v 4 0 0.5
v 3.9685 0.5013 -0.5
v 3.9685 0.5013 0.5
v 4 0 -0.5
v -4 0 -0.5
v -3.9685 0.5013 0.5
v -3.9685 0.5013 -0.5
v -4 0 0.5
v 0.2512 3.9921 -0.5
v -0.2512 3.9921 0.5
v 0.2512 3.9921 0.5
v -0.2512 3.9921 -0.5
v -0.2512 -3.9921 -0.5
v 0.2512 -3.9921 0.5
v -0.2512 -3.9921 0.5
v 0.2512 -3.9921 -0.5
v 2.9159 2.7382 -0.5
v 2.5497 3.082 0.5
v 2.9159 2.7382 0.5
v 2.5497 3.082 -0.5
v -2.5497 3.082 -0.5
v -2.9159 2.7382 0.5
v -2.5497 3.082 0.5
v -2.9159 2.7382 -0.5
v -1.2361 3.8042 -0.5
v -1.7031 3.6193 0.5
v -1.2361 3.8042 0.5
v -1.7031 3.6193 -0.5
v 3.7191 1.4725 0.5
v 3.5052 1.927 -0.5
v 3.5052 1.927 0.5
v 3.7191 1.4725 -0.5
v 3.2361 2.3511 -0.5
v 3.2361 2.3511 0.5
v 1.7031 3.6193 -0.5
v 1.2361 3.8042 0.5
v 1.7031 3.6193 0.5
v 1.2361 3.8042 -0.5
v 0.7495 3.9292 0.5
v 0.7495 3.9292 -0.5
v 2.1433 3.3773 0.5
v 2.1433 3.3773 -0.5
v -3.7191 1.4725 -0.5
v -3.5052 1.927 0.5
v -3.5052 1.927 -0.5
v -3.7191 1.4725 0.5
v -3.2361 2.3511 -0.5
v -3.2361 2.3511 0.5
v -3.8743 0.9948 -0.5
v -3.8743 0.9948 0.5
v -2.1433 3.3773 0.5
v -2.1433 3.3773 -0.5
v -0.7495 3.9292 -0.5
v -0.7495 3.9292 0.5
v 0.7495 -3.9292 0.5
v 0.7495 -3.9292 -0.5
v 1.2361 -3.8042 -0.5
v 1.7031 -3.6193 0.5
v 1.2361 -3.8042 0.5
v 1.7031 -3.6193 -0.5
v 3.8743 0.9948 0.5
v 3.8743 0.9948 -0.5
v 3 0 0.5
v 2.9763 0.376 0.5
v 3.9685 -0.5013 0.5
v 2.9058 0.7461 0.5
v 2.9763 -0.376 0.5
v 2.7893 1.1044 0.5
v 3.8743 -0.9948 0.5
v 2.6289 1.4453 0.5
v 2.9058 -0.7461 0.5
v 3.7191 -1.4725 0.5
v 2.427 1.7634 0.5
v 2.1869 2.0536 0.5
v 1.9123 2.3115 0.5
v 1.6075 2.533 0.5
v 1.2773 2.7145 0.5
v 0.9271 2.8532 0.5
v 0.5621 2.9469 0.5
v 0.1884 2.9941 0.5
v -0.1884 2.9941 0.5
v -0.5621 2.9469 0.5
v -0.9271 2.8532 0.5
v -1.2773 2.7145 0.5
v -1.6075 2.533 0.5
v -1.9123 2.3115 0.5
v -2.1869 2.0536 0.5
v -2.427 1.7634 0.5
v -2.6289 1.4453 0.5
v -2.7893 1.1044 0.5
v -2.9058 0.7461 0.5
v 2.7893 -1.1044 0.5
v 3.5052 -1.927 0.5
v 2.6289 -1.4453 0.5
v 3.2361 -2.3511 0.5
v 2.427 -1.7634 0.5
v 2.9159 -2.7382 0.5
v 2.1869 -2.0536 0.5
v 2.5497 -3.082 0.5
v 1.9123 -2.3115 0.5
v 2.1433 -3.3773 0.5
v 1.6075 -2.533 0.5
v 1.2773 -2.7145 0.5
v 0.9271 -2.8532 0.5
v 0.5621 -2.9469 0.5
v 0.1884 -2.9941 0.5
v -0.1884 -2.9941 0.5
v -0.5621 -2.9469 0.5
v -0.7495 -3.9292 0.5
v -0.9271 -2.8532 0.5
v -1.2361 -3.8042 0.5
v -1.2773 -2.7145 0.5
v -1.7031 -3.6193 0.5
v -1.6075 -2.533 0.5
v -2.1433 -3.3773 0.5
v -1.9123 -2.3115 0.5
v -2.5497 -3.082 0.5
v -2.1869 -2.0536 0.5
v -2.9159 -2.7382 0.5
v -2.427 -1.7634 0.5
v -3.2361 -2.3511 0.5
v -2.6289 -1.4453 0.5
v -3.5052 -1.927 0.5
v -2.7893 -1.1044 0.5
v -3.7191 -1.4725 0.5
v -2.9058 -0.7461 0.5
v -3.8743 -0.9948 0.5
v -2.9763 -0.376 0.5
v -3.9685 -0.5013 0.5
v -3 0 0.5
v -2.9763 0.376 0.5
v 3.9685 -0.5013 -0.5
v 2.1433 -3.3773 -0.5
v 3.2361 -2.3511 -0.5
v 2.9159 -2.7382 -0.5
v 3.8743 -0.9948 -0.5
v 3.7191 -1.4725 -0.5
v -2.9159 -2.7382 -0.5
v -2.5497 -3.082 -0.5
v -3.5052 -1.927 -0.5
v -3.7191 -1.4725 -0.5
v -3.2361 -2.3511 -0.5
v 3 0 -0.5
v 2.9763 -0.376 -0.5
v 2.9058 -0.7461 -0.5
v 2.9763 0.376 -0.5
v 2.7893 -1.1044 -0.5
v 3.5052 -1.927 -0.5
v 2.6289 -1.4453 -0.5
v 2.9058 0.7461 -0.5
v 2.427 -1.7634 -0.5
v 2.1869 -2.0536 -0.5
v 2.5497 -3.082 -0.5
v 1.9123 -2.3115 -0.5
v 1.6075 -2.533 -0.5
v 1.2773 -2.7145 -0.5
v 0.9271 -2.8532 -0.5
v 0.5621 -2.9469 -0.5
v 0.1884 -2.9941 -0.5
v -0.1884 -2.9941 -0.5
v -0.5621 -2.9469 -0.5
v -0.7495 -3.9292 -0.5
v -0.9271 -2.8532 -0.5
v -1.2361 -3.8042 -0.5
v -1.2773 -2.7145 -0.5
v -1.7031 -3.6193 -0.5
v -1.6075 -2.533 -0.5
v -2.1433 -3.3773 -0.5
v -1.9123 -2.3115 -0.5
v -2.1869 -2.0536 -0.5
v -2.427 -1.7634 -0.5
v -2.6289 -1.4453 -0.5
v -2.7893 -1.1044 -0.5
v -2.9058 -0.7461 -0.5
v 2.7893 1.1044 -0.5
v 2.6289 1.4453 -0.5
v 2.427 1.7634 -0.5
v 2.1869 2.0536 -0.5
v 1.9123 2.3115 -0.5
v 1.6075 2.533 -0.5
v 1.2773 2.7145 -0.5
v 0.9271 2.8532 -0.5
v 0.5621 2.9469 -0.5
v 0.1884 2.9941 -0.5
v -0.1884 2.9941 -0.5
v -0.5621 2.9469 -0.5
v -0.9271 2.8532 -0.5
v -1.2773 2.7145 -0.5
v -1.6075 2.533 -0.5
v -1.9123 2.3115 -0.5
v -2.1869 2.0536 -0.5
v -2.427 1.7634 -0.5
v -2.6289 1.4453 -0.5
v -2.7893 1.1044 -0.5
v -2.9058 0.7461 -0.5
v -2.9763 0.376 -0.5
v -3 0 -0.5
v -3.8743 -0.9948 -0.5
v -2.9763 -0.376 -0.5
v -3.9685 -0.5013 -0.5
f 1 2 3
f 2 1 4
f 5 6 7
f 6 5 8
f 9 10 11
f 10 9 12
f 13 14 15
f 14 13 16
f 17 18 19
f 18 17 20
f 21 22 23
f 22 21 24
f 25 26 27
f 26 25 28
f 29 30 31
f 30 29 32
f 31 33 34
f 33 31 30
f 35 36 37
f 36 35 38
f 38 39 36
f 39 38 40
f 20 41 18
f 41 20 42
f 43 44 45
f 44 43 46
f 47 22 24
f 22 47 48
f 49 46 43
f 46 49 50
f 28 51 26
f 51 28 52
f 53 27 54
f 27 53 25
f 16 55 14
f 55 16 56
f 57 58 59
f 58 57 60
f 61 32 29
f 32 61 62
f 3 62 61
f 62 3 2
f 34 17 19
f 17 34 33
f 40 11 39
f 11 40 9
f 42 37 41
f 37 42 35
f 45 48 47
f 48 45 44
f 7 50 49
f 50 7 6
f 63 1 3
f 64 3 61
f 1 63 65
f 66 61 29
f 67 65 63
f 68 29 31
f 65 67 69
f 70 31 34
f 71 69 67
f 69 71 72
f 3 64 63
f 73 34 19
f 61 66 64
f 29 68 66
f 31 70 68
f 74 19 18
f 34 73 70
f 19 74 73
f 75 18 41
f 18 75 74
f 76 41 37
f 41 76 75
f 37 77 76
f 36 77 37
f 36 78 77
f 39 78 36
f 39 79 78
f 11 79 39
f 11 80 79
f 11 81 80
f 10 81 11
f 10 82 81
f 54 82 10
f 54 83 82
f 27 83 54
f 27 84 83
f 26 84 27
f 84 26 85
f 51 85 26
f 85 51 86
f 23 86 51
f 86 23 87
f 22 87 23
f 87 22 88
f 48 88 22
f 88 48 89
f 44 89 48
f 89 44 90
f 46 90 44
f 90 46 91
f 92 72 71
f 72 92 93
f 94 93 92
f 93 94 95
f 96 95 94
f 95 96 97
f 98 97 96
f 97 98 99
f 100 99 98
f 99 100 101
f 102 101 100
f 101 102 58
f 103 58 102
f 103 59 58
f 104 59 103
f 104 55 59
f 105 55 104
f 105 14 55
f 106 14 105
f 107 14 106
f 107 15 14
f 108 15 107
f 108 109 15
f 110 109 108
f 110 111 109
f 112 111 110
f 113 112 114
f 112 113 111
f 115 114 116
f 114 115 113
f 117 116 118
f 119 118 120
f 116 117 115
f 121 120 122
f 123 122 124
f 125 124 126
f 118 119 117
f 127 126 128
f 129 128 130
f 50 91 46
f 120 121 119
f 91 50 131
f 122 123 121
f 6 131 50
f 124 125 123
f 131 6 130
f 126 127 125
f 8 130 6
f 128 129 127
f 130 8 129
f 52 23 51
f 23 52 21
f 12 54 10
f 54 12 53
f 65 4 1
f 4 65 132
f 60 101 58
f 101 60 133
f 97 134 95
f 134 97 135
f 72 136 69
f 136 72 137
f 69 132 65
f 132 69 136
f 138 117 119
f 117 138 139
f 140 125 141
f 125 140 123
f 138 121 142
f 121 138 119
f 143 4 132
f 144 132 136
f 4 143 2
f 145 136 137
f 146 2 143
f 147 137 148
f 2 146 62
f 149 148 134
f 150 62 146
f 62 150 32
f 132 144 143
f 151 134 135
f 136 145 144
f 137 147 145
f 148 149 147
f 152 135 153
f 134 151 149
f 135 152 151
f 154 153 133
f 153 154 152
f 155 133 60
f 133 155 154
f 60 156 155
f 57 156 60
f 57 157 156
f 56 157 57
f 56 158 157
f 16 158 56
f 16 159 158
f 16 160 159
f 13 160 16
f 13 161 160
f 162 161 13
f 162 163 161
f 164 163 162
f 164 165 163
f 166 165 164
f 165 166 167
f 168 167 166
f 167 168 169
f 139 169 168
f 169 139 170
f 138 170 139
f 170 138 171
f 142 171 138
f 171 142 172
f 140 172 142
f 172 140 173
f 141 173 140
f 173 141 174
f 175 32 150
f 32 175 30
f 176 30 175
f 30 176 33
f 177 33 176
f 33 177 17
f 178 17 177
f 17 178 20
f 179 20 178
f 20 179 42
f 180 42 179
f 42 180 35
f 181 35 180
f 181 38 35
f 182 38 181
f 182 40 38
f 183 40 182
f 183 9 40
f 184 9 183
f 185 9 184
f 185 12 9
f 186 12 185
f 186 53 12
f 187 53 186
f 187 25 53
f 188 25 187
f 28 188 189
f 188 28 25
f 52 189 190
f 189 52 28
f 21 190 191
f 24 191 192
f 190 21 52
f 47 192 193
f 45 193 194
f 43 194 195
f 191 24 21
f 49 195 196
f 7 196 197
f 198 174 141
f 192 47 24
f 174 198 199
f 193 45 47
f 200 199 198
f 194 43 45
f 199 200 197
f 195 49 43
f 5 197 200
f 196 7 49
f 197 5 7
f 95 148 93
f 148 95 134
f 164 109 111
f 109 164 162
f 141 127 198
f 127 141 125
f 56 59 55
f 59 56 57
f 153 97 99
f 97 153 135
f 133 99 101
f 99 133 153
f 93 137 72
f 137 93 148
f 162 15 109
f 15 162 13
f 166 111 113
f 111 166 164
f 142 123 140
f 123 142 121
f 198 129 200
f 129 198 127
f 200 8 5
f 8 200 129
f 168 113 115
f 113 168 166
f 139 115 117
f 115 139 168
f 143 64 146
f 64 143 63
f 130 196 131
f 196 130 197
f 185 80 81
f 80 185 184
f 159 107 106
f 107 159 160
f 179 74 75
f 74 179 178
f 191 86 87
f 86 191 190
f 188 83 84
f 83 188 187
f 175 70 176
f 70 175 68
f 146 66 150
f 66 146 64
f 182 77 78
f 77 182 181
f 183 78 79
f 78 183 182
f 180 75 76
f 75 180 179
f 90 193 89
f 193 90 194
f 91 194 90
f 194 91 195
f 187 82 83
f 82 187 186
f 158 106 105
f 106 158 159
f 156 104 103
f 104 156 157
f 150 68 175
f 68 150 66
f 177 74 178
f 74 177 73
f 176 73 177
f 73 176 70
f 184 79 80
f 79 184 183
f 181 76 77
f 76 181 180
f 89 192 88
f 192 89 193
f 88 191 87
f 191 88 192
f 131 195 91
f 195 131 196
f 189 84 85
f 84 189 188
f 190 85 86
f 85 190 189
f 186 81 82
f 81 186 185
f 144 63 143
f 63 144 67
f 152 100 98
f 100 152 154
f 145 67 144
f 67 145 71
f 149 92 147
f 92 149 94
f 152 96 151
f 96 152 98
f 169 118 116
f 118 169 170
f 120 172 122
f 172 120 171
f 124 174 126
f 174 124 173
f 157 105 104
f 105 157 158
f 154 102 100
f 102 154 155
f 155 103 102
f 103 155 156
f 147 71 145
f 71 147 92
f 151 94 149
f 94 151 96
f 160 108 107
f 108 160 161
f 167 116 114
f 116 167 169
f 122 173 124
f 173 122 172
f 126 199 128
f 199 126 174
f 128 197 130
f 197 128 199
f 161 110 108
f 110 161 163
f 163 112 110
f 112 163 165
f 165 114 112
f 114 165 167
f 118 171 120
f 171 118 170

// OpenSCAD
$fn = 50;


difference() {
	union() {
		translate(v = [0, 0, -0.5000000000]) {
			cylinder(h = 1, r = 4.0000000000);
		}
	}
	union() {
		translate(v = [0, 0, -100.0000000000]) {
			cylinder(h = 200, r = 3);
		}
	}
}
